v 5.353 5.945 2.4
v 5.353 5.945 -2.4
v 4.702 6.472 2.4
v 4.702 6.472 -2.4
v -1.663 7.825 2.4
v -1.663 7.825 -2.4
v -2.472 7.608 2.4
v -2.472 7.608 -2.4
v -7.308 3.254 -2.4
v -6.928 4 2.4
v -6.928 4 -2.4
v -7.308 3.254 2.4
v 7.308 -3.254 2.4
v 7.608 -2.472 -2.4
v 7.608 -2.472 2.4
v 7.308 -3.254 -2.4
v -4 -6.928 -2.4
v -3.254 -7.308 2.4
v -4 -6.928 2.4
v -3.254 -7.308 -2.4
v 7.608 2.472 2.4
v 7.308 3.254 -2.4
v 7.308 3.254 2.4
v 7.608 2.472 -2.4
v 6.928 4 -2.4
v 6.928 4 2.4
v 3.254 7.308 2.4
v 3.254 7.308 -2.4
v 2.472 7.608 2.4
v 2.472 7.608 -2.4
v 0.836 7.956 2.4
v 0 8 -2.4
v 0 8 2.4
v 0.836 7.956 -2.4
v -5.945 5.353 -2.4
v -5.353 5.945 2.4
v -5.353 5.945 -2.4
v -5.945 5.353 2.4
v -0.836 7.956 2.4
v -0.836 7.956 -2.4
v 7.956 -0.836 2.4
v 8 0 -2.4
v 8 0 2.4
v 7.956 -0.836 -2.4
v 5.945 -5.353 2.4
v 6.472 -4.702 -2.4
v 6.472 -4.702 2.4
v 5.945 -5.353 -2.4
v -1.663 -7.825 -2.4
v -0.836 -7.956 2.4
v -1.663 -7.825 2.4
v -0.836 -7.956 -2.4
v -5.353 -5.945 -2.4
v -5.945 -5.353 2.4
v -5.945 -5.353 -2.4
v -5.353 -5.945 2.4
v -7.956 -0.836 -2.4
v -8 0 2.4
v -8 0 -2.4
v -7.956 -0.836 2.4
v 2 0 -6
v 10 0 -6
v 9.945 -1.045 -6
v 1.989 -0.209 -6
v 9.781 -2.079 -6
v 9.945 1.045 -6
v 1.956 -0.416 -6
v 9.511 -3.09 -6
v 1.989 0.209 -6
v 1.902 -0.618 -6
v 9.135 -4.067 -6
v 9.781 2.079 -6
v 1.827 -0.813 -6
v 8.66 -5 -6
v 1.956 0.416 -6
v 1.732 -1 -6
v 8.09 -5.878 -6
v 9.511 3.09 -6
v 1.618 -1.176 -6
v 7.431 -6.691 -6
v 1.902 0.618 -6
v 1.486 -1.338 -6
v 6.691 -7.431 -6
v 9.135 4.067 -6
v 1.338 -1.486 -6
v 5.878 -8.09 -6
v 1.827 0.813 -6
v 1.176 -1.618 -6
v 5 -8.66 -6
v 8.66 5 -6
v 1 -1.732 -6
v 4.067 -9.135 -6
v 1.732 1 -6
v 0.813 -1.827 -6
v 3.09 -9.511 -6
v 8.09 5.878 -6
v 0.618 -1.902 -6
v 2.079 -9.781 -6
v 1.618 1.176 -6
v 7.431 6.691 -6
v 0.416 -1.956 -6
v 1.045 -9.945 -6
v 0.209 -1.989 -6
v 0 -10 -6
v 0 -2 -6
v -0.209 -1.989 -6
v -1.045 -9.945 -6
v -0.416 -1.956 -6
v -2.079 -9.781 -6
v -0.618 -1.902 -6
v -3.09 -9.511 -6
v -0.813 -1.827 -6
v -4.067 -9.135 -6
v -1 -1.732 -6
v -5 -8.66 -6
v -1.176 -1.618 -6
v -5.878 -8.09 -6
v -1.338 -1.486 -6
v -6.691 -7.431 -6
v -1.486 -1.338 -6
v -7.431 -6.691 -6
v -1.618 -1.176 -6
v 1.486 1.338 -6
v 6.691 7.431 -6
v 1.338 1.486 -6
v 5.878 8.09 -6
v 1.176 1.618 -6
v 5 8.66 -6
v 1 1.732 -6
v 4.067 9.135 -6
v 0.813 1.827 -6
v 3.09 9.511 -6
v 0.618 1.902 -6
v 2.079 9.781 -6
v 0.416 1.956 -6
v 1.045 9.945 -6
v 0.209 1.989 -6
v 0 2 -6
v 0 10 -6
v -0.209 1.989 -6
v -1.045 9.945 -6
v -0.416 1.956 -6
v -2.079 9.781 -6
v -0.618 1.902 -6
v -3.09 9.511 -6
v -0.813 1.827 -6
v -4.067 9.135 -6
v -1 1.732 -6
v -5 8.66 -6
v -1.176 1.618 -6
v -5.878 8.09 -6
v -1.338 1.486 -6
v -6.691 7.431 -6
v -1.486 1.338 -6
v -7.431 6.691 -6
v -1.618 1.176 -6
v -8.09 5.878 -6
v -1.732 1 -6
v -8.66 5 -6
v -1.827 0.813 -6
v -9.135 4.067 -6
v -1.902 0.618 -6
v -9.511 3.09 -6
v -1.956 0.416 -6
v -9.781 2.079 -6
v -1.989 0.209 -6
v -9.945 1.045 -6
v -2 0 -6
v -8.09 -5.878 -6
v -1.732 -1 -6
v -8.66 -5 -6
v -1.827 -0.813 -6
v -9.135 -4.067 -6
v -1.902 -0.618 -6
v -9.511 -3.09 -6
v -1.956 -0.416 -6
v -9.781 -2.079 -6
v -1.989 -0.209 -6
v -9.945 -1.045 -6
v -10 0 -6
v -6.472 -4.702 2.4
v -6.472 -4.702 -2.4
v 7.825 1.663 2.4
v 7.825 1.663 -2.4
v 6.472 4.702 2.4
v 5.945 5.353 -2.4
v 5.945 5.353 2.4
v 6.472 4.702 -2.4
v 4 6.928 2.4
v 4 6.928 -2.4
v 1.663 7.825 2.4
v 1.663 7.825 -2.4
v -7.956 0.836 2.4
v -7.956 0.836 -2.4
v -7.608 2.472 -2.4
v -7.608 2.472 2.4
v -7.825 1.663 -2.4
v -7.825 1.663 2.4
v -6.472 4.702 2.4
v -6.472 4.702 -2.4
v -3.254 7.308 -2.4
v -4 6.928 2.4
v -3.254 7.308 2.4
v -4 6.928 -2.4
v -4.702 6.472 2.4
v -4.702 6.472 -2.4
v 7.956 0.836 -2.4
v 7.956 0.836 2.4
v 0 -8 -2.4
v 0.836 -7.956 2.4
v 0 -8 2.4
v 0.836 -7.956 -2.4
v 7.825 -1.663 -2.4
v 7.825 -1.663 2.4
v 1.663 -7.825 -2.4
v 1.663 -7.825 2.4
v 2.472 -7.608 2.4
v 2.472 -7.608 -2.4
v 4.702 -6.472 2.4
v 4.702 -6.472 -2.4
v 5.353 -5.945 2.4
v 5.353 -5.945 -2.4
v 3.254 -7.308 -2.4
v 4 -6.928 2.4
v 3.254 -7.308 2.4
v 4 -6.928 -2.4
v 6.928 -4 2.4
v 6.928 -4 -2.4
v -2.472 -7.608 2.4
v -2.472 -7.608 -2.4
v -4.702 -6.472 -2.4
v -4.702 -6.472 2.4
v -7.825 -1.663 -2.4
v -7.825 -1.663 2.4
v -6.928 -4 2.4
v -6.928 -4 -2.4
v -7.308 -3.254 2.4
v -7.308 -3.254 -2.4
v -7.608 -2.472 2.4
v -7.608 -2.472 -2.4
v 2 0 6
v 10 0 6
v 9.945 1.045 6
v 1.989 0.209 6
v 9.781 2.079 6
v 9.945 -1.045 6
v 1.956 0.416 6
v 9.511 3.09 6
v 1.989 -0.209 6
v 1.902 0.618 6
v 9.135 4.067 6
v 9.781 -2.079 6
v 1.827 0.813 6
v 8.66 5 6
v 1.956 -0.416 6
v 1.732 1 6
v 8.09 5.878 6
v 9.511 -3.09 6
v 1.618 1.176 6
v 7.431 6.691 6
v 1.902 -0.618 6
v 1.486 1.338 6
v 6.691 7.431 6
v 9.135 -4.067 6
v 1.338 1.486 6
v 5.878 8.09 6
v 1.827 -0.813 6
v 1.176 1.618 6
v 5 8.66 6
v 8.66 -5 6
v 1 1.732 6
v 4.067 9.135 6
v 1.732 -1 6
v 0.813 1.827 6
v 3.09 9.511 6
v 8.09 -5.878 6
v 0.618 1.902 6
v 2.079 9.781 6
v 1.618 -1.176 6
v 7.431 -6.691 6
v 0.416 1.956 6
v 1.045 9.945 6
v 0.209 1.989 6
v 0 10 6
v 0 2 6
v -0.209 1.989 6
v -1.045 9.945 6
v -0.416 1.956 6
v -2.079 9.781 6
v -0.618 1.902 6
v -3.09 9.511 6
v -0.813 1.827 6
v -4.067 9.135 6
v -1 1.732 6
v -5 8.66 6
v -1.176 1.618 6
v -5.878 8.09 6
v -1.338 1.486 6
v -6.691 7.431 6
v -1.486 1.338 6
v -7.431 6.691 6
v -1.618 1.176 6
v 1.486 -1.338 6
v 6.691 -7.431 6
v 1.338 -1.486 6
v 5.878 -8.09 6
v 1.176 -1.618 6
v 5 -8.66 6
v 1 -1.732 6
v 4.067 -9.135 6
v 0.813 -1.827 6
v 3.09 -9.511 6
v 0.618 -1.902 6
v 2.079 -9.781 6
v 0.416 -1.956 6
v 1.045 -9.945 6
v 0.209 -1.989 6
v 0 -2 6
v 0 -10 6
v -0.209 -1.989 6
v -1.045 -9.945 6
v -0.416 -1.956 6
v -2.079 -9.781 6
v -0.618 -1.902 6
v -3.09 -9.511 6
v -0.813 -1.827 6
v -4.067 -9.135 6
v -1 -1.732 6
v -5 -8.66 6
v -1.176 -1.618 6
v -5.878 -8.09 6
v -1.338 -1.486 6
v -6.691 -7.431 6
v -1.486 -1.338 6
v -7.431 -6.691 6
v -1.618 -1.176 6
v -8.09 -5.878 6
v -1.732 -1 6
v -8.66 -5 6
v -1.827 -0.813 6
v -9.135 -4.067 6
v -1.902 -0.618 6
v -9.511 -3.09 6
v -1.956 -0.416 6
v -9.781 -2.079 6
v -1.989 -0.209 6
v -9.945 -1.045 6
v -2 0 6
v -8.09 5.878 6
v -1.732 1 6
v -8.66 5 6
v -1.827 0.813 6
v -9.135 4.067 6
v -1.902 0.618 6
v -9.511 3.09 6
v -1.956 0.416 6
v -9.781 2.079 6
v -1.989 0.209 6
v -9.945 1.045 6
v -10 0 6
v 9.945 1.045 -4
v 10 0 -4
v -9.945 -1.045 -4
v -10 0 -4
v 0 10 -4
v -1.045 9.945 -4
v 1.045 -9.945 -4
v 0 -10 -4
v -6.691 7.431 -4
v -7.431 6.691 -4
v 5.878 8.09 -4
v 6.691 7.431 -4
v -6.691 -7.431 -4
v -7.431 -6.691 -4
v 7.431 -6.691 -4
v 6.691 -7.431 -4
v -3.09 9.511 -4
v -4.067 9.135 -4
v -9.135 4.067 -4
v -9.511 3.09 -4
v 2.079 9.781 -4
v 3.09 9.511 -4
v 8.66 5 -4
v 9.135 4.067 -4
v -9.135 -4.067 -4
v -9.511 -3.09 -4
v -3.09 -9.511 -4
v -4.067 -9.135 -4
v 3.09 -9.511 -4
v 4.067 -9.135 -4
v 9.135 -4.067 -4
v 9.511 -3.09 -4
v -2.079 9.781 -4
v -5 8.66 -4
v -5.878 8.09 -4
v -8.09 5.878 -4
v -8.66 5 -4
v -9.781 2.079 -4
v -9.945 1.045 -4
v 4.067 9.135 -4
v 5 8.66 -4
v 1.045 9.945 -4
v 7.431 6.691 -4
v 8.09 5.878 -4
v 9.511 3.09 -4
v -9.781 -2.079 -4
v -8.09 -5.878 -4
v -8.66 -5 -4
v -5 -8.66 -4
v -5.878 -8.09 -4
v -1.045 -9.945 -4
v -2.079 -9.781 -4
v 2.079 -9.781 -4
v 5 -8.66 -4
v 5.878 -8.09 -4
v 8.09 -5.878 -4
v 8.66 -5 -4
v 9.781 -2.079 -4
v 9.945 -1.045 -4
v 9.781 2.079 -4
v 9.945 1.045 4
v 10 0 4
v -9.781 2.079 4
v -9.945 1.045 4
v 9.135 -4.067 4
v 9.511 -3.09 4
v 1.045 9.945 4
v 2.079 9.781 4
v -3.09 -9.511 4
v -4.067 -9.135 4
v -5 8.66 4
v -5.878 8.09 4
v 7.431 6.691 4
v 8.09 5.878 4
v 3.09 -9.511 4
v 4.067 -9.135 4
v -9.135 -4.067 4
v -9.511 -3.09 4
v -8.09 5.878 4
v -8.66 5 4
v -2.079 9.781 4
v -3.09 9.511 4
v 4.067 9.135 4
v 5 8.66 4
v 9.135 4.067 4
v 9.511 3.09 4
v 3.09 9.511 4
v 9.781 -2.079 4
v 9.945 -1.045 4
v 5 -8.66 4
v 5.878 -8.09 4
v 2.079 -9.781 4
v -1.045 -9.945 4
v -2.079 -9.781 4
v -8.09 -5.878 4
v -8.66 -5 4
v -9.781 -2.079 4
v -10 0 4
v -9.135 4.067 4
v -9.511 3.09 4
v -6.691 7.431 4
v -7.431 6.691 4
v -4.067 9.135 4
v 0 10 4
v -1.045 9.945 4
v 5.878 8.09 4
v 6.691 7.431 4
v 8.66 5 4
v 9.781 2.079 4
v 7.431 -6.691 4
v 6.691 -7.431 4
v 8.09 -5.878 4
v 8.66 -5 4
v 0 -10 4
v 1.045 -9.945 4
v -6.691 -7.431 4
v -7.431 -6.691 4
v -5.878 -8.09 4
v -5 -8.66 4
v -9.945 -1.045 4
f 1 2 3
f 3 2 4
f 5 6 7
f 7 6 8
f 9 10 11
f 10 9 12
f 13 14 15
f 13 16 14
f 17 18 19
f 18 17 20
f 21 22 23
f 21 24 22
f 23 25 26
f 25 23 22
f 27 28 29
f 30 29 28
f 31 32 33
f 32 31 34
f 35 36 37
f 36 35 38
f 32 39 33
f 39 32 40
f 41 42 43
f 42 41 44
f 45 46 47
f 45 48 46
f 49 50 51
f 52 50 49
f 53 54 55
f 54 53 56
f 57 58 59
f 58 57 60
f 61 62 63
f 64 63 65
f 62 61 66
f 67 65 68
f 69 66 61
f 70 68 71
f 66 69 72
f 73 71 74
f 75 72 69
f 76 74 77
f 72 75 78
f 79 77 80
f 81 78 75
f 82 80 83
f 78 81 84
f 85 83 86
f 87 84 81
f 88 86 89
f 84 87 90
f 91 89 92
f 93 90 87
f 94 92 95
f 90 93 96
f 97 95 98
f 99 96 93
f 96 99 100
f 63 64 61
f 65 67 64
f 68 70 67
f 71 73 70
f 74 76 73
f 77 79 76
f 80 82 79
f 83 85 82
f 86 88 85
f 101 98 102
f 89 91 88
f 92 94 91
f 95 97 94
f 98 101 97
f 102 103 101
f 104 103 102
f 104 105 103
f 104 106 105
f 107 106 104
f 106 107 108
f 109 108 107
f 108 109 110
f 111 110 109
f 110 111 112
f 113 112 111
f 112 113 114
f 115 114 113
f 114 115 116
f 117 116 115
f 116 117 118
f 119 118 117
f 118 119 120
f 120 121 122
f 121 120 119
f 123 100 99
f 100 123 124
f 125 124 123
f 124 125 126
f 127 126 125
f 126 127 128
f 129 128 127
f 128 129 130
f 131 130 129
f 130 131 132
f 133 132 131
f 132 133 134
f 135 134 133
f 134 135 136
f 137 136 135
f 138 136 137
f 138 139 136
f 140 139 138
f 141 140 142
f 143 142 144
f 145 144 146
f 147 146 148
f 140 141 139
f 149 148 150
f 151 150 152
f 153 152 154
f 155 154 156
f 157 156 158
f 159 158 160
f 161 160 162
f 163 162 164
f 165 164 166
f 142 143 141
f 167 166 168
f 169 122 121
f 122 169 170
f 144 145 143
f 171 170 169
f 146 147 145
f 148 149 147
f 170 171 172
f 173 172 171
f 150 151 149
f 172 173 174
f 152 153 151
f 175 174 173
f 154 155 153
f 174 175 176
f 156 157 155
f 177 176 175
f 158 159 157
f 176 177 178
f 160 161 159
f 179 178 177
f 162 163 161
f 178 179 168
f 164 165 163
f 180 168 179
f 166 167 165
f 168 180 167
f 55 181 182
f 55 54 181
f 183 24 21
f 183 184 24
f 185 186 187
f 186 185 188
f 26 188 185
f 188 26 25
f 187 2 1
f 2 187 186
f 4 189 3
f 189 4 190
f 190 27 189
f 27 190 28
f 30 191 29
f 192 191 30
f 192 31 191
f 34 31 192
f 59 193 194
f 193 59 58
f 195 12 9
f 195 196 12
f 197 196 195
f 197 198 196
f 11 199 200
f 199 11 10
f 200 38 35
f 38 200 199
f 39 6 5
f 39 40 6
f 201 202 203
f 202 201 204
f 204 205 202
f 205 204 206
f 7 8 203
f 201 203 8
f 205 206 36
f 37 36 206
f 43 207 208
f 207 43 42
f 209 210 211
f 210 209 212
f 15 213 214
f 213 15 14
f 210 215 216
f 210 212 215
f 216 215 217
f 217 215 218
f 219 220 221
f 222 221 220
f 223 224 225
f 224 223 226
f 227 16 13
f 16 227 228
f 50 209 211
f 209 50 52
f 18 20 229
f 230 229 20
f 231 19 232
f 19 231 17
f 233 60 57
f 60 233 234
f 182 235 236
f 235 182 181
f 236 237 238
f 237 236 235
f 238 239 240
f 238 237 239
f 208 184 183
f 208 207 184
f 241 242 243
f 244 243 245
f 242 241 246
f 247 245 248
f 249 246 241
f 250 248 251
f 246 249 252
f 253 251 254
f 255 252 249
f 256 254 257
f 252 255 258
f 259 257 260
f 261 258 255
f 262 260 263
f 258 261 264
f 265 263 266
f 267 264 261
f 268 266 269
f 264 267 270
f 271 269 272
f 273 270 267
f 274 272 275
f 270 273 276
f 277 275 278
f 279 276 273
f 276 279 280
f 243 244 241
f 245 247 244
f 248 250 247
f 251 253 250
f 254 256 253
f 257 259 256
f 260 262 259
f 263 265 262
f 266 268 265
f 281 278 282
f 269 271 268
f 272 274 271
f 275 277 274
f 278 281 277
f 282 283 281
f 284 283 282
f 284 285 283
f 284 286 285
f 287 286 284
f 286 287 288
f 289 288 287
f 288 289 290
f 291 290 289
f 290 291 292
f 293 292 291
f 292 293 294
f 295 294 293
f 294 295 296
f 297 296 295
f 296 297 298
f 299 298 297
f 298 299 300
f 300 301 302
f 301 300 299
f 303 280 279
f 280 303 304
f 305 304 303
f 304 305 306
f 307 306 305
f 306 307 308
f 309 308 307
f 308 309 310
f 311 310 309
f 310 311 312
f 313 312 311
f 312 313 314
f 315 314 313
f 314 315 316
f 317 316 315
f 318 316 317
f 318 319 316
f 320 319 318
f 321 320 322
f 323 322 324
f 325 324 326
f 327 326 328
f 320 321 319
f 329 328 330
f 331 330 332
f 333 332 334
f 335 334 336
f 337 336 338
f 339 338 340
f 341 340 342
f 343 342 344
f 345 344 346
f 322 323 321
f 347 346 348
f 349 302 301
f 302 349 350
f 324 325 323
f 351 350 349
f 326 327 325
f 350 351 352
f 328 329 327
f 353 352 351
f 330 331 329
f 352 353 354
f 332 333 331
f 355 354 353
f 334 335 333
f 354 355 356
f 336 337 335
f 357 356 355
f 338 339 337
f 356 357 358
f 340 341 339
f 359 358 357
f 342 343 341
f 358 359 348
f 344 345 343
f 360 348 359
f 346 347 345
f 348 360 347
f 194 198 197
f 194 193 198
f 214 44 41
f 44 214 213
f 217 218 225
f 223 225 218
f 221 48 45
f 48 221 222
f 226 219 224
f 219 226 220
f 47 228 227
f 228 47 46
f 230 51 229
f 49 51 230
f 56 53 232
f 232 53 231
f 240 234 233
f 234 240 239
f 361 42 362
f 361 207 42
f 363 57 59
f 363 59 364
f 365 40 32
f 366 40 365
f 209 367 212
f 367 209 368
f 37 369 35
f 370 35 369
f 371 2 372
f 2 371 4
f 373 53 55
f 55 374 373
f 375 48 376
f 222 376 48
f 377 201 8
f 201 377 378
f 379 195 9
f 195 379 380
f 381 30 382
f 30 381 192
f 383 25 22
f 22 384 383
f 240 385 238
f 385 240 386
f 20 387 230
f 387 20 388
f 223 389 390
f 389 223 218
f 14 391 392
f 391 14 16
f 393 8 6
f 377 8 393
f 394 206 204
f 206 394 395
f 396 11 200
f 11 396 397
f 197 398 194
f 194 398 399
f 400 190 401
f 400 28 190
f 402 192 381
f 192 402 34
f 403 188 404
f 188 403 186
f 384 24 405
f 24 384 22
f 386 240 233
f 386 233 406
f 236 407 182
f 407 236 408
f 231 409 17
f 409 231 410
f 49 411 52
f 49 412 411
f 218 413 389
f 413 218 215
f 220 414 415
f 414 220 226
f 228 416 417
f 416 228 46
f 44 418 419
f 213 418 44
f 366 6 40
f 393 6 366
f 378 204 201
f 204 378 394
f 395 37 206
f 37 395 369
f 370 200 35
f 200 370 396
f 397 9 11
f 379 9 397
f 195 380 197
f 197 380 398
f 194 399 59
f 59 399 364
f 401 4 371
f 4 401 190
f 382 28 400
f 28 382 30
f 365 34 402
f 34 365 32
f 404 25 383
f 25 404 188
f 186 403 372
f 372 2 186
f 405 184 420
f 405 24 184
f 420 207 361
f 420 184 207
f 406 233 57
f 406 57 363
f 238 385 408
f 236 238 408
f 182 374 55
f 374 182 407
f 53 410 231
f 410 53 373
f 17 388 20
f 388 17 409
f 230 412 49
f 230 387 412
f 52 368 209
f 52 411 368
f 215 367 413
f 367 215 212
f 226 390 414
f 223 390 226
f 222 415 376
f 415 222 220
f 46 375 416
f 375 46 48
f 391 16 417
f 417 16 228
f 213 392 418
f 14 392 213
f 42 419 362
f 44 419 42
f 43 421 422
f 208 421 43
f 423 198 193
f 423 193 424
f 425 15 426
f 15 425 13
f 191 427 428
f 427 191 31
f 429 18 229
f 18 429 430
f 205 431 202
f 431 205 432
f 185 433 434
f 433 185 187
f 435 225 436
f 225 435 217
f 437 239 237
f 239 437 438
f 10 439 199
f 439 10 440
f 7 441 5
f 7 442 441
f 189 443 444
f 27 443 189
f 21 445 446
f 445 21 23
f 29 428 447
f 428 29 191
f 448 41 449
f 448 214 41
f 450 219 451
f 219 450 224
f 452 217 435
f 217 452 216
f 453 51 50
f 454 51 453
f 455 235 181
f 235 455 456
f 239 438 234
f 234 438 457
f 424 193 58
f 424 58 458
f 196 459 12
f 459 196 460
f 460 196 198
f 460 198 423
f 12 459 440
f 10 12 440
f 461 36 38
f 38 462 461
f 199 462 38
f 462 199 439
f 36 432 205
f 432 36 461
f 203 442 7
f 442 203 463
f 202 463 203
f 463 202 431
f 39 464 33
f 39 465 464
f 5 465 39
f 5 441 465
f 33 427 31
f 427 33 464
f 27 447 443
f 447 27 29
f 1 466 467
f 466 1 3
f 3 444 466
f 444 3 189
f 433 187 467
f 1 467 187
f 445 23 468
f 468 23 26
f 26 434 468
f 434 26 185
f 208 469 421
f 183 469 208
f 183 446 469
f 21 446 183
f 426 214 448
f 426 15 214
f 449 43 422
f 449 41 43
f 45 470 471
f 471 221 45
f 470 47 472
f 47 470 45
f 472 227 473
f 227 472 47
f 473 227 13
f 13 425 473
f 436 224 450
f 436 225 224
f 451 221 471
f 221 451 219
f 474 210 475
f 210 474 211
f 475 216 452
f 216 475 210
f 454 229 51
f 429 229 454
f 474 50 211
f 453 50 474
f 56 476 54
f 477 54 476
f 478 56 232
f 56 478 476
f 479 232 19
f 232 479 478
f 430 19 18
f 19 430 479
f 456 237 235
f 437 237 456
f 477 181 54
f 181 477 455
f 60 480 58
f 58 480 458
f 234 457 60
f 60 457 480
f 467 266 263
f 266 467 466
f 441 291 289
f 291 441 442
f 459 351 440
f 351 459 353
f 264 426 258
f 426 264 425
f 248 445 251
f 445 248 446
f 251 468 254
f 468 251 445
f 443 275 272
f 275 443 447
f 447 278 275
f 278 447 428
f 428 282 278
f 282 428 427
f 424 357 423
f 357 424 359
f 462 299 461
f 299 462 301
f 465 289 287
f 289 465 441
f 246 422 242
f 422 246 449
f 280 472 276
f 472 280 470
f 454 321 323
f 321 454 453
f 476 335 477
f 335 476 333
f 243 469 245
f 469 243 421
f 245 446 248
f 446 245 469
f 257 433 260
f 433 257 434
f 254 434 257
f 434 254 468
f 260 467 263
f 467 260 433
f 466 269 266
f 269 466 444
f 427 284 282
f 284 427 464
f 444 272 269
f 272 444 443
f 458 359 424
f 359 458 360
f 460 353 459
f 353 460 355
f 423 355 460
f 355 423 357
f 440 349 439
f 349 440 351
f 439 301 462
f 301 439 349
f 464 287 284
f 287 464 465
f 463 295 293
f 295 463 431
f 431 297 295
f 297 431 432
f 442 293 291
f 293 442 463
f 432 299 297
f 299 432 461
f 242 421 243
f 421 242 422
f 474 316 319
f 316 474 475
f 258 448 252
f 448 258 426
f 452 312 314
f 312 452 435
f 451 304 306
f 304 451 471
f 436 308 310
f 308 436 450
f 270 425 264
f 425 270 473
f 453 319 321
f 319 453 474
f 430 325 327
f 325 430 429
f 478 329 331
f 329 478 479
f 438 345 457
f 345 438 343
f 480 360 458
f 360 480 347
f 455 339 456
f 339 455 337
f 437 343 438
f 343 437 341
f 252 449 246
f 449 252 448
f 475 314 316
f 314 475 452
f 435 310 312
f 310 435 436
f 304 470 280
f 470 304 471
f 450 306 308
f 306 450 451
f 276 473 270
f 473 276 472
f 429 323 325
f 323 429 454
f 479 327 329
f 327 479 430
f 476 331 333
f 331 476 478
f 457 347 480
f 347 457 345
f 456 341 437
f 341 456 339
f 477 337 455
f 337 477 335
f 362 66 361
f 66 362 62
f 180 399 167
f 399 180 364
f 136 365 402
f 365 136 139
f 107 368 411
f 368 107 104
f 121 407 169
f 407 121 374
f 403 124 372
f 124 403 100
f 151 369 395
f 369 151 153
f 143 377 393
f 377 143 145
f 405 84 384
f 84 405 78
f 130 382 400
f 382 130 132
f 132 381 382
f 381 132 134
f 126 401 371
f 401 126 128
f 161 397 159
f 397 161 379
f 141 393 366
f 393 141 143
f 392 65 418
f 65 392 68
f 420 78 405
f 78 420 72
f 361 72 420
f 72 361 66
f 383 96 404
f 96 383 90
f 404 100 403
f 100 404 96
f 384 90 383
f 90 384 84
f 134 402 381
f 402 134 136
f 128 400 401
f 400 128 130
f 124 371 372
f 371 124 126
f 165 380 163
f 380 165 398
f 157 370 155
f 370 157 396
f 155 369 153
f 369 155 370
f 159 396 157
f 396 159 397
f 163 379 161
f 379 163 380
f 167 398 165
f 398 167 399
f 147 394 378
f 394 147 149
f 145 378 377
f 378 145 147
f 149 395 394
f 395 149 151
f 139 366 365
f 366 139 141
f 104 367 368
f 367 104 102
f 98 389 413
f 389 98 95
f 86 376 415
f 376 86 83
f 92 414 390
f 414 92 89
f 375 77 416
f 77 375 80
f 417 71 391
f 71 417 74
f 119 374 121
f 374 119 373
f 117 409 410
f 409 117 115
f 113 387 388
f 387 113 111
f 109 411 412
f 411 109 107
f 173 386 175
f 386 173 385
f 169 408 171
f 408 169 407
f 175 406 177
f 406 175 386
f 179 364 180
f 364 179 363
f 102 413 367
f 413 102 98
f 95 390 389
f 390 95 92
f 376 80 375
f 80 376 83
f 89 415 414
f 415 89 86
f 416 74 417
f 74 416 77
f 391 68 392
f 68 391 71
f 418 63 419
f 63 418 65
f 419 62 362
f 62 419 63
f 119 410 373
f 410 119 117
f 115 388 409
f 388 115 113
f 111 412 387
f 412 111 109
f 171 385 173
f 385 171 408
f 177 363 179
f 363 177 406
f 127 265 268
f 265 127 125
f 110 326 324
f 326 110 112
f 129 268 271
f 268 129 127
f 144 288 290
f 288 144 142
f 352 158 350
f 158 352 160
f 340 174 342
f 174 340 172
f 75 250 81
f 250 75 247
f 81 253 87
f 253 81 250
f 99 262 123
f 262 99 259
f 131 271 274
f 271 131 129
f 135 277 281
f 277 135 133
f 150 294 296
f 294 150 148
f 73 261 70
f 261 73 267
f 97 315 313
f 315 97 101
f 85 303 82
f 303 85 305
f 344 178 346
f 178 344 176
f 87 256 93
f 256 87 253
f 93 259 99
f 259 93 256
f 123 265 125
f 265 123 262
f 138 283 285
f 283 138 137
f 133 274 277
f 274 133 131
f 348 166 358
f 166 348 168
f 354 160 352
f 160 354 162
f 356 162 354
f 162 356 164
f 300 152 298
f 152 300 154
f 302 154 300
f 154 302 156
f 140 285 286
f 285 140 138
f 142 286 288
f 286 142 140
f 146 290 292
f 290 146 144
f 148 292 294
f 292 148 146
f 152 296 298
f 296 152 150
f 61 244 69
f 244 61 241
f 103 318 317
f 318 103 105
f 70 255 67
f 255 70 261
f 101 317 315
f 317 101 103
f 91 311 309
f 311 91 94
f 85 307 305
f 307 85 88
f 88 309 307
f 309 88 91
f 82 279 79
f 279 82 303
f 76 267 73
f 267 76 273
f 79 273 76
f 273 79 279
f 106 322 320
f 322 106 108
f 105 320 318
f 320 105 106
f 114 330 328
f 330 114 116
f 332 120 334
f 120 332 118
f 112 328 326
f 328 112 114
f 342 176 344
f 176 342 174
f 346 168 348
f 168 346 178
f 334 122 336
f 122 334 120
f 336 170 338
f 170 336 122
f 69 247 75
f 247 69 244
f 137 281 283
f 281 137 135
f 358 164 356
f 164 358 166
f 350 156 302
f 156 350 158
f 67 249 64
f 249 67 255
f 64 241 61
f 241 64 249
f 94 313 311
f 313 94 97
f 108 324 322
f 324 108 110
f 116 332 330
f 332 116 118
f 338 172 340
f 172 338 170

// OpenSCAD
/*---------------------------------------------------------\
|     From: Ekobots Innovation Ltda - www.ekobots.com      |
|       by: Juan Sirgado y Antico - www.jsya.com.br        |
|----------------------------------------------------------|
|            Program Polia Lisa - 2019/05/15               |
|               All rights reserved 2019                   |
|---------------------------------------------------------*/
ac=0.2;
fn=60;
!polia();
eixo();
//---------------------------------------------------------|
module polia()
{
   difference()
   {
      union()
      {
         translate([0,0,0])
            cylinder(h=12,d=16,center=true,$fn=60);
         translate([0,0,0])
            cylinder(h=8,d1=20,d2=0,center=true,$fn=60);
         translate([0,0,0])
            cylinder(h=8,d1=0,d2=20,center=true,$fn=60);
         translate([0,0,5])
            cylinder(h=2,d=20,center=true,$fn=60);
         translate([0,0,-5])
            cylinder(h=2,d=20,center=true,$fn=60);
      }
      translate([0,0,0])
         cylinder(h=12+ac,d=4,center=true,$fn=60);
   }

}
//---------------------------------------------------------|
module eixo()
{
   translate([16,0,0])
      cylinder(h=12+ac,d=3,center=true,$fn=60);
}
//---------------------------------------------------------|
